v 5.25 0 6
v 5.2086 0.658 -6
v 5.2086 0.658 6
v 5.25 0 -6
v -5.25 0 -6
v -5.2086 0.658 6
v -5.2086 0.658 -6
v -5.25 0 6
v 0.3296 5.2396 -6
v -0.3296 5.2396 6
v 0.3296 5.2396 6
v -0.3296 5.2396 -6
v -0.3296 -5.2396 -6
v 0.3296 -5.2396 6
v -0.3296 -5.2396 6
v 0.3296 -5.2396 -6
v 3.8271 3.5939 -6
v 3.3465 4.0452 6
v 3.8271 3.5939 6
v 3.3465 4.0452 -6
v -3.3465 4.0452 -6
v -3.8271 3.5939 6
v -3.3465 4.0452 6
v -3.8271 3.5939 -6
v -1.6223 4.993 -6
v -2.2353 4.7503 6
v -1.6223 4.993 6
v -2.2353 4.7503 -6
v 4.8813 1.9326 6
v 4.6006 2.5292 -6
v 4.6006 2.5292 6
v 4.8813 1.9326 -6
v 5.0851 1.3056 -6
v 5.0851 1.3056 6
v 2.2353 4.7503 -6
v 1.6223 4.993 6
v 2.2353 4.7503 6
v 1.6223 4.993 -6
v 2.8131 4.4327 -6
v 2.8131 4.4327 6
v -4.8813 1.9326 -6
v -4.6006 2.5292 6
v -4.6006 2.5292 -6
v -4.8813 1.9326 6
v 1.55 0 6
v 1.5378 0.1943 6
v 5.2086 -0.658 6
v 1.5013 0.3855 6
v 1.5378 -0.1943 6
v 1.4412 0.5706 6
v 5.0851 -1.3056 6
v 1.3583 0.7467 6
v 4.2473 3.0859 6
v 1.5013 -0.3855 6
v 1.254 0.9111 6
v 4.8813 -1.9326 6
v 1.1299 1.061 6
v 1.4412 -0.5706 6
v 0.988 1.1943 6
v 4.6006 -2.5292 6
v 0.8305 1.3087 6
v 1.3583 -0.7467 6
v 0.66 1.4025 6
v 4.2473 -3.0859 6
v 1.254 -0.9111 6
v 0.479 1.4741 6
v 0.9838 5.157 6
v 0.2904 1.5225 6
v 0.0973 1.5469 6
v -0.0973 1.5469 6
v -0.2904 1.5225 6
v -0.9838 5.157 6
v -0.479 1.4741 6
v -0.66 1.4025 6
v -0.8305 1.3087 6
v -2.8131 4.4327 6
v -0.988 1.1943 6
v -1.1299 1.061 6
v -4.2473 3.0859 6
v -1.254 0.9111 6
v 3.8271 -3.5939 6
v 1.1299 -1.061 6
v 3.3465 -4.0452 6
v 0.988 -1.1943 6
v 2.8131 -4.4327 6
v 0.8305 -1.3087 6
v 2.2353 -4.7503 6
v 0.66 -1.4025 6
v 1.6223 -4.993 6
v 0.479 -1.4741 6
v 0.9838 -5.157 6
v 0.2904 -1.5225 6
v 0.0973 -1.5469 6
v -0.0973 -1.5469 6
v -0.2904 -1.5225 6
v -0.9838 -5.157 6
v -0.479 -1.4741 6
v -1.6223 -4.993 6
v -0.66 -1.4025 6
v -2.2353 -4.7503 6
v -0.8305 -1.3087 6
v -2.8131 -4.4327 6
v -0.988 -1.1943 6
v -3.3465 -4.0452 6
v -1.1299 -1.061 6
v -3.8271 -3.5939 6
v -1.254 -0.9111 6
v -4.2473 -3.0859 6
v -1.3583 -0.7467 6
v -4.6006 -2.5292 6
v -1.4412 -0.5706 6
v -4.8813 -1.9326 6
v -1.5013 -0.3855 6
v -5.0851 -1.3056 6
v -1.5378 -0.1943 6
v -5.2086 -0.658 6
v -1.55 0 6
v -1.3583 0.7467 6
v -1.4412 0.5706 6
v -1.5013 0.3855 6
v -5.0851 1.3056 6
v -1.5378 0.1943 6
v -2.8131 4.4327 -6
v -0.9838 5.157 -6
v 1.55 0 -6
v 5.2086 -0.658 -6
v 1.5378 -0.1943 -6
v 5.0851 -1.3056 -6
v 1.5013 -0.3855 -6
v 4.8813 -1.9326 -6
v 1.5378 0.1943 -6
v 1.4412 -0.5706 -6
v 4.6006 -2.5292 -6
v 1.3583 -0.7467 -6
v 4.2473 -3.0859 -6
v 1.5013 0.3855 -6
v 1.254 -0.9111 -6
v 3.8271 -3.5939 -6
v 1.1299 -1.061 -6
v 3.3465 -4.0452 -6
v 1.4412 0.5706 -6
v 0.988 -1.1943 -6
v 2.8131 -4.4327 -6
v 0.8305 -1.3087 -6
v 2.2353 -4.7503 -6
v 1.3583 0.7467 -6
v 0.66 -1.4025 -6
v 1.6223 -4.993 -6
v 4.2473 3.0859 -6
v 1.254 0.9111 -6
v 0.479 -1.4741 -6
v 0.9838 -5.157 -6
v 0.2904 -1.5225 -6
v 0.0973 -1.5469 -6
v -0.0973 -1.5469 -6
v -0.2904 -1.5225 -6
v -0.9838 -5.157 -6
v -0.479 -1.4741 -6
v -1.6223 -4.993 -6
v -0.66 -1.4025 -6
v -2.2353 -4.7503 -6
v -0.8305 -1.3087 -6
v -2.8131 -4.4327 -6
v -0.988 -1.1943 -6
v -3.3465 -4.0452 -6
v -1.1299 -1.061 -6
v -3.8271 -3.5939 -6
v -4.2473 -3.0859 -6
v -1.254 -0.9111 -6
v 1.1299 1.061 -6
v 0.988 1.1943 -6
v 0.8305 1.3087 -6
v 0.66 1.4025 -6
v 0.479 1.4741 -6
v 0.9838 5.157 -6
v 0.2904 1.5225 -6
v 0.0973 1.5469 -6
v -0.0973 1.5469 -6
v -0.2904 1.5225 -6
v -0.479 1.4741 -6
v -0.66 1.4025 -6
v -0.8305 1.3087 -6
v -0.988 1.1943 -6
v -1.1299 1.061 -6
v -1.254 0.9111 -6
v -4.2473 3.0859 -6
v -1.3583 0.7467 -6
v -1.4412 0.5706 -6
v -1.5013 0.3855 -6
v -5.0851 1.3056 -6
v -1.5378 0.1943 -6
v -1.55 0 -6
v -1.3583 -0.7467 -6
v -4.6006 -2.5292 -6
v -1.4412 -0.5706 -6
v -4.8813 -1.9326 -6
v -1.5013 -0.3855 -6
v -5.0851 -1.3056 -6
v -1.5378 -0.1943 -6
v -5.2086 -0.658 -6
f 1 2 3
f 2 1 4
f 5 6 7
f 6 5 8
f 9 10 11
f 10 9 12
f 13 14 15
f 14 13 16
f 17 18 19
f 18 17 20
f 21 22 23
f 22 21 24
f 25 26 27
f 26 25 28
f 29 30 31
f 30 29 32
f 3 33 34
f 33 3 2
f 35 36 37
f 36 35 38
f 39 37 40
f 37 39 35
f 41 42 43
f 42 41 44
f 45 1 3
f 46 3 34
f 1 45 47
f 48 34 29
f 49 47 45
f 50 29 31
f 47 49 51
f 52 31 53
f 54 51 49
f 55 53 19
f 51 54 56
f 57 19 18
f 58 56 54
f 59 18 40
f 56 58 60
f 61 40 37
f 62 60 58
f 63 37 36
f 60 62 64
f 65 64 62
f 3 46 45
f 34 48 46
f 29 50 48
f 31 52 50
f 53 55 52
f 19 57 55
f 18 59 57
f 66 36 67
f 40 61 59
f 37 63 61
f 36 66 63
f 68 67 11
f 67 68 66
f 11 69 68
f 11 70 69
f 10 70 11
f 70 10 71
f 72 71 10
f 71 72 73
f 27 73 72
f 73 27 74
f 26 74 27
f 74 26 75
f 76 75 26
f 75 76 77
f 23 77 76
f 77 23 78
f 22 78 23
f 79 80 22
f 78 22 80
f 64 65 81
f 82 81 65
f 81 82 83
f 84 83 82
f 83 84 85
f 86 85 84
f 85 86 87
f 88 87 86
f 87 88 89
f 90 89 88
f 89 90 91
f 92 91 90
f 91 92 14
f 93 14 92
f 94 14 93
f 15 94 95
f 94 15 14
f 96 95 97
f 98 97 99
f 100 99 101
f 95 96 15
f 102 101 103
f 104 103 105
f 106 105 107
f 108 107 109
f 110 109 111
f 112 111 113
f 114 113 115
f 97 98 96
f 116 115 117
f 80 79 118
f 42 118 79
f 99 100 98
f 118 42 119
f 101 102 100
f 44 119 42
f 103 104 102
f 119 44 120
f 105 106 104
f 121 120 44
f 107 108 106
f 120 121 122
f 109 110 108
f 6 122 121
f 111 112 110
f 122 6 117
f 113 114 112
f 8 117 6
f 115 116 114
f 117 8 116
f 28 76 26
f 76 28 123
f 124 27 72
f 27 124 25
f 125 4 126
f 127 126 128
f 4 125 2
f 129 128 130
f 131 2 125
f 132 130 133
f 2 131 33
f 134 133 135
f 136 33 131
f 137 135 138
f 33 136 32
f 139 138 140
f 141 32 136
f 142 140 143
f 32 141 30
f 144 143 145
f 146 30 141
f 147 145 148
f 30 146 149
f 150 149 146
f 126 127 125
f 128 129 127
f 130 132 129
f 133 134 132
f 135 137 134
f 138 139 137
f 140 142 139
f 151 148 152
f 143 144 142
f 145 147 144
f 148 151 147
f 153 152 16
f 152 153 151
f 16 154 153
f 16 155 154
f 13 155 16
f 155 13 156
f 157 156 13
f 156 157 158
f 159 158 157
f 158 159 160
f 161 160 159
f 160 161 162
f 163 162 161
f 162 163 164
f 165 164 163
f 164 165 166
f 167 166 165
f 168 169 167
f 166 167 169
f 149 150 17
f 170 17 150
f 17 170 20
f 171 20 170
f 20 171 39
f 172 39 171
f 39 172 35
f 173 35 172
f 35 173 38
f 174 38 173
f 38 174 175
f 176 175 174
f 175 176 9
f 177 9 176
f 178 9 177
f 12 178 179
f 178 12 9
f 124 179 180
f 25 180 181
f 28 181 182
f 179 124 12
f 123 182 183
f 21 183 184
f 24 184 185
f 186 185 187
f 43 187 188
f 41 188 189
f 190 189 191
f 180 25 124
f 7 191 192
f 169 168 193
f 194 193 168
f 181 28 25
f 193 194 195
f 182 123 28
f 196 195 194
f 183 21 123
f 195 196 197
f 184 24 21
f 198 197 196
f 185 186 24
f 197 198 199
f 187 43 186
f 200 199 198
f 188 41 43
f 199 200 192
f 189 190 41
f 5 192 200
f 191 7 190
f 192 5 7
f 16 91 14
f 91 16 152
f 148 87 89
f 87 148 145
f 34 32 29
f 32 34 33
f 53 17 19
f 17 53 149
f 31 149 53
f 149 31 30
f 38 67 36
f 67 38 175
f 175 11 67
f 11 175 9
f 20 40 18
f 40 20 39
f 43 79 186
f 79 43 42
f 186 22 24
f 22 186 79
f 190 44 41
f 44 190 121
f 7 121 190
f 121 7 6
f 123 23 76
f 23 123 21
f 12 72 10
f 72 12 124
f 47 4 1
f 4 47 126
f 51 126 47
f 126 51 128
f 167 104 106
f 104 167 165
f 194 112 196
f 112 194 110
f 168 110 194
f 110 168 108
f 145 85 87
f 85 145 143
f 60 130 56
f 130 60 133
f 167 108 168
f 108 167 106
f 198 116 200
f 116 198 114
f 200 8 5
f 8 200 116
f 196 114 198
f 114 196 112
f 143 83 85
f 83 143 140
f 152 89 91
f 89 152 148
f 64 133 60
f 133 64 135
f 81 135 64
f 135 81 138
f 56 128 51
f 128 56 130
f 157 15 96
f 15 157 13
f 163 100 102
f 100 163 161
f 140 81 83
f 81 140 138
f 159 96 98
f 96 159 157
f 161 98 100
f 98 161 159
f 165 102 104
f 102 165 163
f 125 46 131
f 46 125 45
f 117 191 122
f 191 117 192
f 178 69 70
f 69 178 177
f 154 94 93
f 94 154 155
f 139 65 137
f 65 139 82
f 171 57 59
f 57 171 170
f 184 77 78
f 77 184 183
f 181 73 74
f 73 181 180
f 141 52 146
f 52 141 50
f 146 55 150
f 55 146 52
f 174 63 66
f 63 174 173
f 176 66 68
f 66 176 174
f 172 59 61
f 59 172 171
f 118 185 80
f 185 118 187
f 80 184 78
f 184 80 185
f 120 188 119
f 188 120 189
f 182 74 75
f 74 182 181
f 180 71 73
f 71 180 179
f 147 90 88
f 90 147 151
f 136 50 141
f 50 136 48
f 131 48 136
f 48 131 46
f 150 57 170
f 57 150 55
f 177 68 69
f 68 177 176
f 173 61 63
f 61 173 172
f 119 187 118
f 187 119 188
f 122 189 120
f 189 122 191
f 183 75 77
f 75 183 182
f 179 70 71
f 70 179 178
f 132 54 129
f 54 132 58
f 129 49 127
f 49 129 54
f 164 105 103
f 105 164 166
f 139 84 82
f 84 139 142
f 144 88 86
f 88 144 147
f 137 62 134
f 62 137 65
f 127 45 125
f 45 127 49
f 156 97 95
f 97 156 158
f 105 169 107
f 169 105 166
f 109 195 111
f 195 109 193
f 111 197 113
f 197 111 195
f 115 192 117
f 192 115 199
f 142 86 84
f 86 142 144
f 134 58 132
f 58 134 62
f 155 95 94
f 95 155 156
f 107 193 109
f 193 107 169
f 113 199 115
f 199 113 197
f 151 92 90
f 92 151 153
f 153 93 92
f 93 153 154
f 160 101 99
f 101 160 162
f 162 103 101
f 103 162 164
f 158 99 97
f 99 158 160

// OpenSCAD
$fn = 50;


difference() {
	union() {
		translate(v = [0, 0, -6.0000000000]) {
			cylinder(h = 12, r = 5.2500000000);
		}
	}
	union() {
		translate(v = [0, 0, -100.0000000000]) {
			cylinder(h = 200, r = 1.5500000000);
		}
	}
}
